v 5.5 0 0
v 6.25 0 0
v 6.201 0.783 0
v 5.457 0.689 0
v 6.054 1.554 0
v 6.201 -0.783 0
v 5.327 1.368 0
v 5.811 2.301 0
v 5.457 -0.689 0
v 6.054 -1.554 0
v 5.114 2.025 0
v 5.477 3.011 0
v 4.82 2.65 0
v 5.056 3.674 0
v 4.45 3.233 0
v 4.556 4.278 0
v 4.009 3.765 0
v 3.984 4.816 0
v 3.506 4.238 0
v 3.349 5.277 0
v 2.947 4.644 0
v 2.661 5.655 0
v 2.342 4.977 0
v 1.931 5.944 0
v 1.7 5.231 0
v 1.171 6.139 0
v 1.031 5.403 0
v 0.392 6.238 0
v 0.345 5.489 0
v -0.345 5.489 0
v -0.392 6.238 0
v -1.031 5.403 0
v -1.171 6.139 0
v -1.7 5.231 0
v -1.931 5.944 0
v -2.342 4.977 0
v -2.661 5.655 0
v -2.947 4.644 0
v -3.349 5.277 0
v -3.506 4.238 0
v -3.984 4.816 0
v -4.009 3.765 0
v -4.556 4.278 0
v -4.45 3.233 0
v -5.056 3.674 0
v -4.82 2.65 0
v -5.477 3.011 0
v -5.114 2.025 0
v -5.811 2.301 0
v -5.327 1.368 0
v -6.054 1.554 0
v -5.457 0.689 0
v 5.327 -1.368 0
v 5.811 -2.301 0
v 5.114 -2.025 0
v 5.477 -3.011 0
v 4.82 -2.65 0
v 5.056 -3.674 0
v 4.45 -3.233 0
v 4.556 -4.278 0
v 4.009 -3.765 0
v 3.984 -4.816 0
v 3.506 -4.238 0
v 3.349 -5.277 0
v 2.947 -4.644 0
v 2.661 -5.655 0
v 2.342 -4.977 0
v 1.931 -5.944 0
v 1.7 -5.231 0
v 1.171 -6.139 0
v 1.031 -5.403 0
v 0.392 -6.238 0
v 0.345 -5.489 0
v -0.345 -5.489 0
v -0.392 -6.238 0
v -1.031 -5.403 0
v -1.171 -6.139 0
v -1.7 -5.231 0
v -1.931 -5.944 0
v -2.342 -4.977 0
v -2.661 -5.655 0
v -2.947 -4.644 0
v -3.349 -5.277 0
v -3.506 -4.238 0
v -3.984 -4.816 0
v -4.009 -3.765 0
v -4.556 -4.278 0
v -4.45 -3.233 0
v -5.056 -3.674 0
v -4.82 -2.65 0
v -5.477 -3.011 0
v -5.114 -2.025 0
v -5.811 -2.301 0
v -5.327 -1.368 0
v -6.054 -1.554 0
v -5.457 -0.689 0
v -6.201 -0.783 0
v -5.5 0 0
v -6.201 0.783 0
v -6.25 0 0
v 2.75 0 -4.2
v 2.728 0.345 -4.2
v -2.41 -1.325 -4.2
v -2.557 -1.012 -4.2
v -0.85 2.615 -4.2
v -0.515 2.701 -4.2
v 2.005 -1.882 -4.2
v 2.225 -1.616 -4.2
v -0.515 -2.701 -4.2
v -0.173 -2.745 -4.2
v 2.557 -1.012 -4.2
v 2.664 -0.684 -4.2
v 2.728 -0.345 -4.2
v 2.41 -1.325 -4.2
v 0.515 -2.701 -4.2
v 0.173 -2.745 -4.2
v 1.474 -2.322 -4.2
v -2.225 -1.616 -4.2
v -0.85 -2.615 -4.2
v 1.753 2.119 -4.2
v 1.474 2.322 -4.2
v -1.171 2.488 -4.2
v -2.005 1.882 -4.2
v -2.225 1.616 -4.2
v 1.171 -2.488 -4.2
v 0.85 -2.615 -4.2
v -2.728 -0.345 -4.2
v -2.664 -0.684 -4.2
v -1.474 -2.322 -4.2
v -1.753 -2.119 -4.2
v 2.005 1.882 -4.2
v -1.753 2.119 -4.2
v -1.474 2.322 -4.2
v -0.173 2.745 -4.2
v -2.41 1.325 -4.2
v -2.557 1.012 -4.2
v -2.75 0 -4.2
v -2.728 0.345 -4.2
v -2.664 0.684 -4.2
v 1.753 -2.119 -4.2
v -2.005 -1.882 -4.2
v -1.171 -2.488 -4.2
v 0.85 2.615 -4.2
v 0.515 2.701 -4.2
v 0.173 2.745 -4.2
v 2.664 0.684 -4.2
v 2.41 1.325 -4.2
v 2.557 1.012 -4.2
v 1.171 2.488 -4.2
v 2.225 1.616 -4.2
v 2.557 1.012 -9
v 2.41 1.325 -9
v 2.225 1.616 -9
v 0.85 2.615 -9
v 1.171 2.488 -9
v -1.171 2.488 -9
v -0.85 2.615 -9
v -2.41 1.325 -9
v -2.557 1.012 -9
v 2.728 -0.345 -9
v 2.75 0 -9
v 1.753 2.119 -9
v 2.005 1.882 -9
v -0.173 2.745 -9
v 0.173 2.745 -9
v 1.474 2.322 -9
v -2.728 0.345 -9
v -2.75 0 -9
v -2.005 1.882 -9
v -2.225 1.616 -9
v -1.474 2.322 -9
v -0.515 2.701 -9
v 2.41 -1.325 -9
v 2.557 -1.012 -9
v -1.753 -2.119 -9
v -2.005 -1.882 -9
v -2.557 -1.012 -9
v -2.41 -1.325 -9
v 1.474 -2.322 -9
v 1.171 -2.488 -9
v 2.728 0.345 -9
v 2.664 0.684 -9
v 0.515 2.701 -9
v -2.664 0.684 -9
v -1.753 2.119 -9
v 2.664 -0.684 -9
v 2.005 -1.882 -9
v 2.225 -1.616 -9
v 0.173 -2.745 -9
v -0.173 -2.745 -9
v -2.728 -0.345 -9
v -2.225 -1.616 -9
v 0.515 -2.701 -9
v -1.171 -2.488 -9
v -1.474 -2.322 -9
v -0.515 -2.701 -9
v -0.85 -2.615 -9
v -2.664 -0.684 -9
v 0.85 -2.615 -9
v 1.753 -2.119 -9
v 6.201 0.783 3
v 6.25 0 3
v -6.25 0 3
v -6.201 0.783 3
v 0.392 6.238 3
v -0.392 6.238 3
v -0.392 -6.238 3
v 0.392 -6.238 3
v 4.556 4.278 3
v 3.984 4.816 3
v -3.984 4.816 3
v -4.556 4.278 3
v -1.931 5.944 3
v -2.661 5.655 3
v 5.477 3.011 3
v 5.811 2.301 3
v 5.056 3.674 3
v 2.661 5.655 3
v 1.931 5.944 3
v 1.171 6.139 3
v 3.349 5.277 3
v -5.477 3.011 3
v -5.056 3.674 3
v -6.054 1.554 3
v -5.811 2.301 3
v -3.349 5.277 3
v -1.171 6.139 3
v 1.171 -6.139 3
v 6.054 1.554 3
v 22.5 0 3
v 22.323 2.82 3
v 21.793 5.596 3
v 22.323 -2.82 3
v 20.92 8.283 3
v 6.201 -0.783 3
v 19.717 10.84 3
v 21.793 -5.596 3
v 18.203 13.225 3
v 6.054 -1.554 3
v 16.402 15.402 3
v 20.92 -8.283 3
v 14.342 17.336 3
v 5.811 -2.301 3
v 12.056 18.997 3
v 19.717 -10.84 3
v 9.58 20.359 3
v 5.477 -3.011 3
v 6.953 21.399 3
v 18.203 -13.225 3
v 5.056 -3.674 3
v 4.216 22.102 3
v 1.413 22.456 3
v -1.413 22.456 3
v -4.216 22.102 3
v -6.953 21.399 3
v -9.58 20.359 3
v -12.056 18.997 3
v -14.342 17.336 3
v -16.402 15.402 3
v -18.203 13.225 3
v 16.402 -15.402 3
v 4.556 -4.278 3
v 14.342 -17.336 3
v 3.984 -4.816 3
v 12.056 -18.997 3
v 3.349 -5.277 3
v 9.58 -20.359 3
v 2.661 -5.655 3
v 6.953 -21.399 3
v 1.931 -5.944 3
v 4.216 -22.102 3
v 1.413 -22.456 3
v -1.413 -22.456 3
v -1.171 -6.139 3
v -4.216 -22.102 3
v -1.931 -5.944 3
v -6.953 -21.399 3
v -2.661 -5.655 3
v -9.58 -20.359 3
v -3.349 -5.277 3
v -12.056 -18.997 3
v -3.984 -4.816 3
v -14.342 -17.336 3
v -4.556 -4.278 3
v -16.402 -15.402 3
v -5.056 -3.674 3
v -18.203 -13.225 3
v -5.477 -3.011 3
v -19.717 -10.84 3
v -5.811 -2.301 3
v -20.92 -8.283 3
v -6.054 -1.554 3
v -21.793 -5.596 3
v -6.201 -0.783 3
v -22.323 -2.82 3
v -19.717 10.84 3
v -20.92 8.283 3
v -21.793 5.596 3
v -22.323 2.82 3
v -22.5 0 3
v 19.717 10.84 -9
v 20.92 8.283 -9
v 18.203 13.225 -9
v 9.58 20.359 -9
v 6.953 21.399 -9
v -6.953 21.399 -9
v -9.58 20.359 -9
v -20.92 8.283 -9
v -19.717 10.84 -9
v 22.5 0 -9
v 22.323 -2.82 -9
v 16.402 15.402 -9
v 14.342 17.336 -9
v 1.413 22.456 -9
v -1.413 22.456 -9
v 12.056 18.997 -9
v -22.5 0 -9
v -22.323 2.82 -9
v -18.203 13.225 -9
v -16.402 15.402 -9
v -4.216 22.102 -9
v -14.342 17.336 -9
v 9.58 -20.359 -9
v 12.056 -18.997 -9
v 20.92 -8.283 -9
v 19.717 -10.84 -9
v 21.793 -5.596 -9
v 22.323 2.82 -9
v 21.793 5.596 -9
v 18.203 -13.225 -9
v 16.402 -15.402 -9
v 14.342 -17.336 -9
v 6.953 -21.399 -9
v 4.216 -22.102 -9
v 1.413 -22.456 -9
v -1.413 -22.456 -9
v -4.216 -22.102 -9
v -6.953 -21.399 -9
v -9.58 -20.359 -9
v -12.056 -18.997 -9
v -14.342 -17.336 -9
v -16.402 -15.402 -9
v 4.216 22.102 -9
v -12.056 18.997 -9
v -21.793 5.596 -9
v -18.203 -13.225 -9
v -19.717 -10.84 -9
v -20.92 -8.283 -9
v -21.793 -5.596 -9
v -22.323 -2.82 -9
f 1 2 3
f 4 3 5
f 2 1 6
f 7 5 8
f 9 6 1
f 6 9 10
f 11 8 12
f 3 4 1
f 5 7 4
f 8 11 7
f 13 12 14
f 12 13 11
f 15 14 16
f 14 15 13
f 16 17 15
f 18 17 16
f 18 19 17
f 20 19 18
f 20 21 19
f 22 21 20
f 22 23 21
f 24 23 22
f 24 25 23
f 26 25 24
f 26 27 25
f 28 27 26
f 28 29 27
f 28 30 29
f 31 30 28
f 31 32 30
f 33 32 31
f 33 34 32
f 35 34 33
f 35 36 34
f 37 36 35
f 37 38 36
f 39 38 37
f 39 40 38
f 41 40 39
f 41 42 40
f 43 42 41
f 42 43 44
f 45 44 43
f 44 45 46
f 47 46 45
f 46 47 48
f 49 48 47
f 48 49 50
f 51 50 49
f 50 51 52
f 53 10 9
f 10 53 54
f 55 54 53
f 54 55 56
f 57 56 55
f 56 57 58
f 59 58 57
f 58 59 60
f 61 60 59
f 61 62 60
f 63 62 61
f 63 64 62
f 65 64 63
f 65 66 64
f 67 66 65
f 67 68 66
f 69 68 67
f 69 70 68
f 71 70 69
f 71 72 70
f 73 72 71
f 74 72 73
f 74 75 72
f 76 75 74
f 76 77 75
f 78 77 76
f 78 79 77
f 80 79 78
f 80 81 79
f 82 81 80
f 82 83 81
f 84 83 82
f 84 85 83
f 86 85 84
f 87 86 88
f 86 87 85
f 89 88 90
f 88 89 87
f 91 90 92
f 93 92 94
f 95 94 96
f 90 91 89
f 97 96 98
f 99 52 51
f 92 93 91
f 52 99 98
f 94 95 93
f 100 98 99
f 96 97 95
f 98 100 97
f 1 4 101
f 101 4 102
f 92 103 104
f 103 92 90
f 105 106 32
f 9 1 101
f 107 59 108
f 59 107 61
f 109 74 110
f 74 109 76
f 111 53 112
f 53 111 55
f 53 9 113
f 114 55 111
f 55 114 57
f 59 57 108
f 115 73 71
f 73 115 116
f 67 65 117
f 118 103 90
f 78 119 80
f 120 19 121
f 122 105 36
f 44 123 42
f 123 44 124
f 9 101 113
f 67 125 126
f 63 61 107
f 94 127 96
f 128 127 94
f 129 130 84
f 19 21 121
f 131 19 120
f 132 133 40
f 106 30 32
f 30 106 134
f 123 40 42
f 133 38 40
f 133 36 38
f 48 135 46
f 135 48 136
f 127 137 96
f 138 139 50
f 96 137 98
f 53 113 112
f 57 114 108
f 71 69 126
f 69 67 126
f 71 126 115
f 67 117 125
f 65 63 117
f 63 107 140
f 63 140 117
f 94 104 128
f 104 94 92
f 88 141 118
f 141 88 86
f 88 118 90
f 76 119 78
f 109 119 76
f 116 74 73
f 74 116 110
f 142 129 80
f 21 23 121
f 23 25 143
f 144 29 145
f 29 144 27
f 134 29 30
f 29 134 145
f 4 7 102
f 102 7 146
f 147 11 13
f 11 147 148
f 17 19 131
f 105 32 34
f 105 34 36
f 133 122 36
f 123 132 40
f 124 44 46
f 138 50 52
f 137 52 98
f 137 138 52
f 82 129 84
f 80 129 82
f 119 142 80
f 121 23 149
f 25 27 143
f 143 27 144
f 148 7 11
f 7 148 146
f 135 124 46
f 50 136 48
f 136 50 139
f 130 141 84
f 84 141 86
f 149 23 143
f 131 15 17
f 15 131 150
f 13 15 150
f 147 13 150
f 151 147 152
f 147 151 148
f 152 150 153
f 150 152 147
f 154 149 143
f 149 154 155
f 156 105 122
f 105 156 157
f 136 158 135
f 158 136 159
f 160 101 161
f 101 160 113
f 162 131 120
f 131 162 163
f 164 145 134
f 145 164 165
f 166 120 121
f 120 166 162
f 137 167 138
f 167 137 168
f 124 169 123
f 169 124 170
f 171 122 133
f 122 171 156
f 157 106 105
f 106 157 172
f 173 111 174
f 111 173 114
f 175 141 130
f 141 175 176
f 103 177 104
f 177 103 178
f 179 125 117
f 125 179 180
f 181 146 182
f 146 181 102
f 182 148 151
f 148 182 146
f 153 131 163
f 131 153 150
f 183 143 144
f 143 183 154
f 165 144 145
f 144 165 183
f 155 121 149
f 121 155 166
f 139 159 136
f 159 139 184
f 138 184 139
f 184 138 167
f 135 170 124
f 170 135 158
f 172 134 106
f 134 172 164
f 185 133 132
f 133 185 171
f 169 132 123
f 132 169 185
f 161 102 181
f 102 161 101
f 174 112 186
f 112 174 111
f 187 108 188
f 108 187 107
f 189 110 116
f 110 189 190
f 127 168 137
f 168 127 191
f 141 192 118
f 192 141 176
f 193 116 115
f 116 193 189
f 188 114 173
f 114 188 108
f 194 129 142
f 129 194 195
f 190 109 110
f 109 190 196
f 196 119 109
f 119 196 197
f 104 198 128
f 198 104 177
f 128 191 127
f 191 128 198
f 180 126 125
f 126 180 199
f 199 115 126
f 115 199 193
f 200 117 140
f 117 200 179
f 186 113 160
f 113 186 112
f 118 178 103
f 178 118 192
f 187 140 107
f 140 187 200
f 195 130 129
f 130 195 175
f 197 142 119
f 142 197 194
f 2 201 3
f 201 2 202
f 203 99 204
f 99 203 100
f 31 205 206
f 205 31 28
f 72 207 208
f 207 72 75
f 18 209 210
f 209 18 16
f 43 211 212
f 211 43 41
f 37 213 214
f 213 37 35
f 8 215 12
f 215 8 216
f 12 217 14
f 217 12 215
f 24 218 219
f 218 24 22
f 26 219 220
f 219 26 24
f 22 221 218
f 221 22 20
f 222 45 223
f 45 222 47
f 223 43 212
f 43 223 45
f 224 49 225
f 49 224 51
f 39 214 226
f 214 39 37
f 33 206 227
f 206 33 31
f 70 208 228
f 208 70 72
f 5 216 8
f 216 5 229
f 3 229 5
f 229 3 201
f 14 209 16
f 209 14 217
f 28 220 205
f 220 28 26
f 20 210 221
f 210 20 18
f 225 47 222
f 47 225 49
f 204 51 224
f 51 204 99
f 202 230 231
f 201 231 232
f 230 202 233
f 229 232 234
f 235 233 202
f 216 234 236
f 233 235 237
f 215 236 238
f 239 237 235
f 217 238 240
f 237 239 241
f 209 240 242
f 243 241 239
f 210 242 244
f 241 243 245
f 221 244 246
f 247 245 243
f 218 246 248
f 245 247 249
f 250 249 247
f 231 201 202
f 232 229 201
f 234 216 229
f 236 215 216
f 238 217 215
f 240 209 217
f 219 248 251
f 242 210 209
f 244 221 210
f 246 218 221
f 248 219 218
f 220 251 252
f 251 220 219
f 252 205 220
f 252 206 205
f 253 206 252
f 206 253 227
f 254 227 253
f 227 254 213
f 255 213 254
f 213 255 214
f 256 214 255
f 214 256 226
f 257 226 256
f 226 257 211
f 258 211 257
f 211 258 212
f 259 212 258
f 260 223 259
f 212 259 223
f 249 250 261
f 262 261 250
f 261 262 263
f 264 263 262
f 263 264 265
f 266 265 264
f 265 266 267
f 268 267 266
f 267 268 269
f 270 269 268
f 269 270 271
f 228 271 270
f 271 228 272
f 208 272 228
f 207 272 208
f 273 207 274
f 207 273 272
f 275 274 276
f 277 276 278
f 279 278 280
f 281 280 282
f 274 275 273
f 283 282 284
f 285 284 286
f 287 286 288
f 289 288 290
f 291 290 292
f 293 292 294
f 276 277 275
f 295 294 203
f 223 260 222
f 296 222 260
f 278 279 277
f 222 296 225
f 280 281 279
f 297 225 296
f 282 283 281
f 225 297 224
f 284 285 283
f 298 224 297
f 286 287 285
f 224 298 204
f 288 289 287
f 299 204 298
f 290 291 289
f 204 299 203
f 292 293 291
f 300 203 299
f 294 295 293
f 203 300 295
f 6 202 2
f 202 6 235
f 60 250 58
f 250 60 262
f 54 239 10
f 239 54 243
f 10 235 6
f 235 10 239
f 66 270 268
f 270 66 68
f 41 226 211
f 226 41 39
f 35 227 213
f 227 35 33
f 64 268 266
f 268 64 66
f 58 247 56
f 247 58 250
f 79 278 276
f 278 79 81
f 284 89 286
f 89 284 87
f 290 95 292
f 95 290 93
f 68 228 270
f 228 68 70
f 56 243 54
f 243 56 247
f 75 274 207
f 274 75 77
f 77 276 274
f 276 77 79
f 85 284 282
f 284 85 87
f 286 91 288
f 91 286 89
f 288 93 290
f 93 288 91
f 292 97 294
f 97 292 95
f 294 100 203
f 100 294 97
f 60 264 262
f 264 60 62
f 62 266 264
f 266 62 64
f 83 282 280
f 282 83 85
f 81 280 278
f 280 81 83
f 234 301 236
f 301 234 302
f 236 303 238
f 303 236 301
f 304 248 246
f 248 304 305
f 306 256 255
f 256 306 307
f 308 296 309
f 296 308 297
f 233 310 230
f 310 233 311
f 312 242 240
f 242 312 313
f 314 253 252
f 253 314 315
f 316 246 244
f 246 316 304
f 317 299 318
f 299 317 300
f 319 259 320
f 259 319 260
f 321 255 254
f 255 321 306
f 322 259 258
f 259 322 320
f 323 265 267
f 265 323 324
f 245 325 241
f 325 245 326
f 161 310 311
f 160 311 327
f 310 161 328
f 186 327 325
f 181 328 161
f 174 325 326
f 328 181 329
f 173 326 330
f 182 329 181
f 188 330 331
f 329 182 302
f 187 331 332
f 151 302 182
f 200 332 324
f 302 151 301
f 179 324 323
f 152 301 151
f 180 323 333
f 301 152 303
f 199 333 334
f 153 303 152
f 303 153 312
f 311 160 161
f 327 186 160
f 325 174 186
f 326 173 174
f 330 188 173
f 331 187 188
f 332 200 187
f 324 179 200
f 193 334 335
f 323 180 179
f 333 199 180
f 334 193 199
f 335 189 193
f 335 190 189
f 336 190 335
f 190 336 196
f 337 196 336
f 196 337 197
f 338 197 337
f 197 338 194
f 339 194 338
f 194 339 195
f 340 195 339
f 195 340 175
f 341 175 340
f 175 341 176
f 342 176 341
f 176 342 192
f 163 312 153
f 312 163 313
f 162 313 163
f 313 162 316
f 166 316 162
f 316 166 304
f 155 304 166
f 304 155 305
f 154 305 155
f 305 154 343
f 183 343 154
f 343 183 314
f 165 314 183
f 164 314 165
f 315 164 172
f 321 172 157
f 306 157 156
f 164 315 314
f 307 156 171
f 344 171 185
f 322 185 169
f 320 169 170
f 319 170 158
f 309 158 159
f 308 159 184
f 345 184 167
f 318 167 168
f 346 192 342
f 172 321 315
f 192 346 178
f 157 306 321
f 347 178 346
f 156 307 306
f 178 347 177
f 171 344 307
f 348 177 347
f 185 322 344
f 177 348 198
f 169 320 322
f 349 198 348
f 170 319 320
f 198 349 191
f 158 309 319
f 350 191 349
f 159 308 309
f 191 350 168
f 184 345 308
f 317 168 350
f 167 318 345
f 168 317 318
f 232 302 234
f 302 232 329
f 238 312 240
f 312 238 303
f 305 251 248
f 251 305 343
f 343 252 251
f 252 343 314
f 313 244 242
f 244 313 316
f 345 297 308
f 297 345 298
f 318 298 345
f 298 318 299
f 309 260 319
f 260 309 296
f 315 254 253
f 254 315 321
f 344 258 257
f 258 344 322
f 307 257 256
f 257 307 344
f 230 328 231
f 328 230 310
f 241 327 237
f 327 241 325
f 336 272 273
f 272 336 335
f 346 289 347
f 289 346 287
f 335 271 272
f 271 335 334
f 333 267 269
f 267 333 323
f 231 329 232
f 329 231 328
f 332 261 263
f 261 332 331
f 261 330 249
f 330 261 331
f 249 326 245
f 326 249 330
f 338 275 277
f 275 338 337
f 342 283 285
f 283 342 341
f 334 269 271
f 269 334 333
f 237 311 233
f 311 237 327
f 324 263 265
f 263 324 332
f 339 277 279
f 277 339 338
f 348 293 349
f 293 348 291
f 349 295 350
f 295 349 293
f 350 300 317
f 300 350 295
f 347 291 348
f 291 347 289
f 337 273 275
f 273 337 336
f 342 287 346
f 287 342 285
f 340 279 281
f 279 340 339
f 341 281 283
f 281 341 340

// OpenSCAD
$fn = 50;

difference() {
	union() {
		translate(v = [0, 0, -9.0]) {
			cylinder(h = 12, r = 22.5);
		}
	}
	union() {
		translate(v = [0, 0, 0]) {
			rotate(a = [0, 0, 0]) {
				difference() {
					union() {
						translate(v = [0, 0, -12.0]) {
							cylinder(h = 12, r = 2.25);
						}
						translate(v = [0, 0, -4.2]) {
							cylinder(h = 4.2, r1 = 2.75, r2 = 5.5);
						}
						translate(v = [0, 0, -12.0]) {
							cylinder(h = 12, r = 2.75);
						}
						translate(v = [0, 0, -12.0]) {
							cylinder(h = 12, r = 2.25);
						}
					}
					union();
				}
			}
		}
		#cylinder(h = 3, r = 6.25);
	}
}
